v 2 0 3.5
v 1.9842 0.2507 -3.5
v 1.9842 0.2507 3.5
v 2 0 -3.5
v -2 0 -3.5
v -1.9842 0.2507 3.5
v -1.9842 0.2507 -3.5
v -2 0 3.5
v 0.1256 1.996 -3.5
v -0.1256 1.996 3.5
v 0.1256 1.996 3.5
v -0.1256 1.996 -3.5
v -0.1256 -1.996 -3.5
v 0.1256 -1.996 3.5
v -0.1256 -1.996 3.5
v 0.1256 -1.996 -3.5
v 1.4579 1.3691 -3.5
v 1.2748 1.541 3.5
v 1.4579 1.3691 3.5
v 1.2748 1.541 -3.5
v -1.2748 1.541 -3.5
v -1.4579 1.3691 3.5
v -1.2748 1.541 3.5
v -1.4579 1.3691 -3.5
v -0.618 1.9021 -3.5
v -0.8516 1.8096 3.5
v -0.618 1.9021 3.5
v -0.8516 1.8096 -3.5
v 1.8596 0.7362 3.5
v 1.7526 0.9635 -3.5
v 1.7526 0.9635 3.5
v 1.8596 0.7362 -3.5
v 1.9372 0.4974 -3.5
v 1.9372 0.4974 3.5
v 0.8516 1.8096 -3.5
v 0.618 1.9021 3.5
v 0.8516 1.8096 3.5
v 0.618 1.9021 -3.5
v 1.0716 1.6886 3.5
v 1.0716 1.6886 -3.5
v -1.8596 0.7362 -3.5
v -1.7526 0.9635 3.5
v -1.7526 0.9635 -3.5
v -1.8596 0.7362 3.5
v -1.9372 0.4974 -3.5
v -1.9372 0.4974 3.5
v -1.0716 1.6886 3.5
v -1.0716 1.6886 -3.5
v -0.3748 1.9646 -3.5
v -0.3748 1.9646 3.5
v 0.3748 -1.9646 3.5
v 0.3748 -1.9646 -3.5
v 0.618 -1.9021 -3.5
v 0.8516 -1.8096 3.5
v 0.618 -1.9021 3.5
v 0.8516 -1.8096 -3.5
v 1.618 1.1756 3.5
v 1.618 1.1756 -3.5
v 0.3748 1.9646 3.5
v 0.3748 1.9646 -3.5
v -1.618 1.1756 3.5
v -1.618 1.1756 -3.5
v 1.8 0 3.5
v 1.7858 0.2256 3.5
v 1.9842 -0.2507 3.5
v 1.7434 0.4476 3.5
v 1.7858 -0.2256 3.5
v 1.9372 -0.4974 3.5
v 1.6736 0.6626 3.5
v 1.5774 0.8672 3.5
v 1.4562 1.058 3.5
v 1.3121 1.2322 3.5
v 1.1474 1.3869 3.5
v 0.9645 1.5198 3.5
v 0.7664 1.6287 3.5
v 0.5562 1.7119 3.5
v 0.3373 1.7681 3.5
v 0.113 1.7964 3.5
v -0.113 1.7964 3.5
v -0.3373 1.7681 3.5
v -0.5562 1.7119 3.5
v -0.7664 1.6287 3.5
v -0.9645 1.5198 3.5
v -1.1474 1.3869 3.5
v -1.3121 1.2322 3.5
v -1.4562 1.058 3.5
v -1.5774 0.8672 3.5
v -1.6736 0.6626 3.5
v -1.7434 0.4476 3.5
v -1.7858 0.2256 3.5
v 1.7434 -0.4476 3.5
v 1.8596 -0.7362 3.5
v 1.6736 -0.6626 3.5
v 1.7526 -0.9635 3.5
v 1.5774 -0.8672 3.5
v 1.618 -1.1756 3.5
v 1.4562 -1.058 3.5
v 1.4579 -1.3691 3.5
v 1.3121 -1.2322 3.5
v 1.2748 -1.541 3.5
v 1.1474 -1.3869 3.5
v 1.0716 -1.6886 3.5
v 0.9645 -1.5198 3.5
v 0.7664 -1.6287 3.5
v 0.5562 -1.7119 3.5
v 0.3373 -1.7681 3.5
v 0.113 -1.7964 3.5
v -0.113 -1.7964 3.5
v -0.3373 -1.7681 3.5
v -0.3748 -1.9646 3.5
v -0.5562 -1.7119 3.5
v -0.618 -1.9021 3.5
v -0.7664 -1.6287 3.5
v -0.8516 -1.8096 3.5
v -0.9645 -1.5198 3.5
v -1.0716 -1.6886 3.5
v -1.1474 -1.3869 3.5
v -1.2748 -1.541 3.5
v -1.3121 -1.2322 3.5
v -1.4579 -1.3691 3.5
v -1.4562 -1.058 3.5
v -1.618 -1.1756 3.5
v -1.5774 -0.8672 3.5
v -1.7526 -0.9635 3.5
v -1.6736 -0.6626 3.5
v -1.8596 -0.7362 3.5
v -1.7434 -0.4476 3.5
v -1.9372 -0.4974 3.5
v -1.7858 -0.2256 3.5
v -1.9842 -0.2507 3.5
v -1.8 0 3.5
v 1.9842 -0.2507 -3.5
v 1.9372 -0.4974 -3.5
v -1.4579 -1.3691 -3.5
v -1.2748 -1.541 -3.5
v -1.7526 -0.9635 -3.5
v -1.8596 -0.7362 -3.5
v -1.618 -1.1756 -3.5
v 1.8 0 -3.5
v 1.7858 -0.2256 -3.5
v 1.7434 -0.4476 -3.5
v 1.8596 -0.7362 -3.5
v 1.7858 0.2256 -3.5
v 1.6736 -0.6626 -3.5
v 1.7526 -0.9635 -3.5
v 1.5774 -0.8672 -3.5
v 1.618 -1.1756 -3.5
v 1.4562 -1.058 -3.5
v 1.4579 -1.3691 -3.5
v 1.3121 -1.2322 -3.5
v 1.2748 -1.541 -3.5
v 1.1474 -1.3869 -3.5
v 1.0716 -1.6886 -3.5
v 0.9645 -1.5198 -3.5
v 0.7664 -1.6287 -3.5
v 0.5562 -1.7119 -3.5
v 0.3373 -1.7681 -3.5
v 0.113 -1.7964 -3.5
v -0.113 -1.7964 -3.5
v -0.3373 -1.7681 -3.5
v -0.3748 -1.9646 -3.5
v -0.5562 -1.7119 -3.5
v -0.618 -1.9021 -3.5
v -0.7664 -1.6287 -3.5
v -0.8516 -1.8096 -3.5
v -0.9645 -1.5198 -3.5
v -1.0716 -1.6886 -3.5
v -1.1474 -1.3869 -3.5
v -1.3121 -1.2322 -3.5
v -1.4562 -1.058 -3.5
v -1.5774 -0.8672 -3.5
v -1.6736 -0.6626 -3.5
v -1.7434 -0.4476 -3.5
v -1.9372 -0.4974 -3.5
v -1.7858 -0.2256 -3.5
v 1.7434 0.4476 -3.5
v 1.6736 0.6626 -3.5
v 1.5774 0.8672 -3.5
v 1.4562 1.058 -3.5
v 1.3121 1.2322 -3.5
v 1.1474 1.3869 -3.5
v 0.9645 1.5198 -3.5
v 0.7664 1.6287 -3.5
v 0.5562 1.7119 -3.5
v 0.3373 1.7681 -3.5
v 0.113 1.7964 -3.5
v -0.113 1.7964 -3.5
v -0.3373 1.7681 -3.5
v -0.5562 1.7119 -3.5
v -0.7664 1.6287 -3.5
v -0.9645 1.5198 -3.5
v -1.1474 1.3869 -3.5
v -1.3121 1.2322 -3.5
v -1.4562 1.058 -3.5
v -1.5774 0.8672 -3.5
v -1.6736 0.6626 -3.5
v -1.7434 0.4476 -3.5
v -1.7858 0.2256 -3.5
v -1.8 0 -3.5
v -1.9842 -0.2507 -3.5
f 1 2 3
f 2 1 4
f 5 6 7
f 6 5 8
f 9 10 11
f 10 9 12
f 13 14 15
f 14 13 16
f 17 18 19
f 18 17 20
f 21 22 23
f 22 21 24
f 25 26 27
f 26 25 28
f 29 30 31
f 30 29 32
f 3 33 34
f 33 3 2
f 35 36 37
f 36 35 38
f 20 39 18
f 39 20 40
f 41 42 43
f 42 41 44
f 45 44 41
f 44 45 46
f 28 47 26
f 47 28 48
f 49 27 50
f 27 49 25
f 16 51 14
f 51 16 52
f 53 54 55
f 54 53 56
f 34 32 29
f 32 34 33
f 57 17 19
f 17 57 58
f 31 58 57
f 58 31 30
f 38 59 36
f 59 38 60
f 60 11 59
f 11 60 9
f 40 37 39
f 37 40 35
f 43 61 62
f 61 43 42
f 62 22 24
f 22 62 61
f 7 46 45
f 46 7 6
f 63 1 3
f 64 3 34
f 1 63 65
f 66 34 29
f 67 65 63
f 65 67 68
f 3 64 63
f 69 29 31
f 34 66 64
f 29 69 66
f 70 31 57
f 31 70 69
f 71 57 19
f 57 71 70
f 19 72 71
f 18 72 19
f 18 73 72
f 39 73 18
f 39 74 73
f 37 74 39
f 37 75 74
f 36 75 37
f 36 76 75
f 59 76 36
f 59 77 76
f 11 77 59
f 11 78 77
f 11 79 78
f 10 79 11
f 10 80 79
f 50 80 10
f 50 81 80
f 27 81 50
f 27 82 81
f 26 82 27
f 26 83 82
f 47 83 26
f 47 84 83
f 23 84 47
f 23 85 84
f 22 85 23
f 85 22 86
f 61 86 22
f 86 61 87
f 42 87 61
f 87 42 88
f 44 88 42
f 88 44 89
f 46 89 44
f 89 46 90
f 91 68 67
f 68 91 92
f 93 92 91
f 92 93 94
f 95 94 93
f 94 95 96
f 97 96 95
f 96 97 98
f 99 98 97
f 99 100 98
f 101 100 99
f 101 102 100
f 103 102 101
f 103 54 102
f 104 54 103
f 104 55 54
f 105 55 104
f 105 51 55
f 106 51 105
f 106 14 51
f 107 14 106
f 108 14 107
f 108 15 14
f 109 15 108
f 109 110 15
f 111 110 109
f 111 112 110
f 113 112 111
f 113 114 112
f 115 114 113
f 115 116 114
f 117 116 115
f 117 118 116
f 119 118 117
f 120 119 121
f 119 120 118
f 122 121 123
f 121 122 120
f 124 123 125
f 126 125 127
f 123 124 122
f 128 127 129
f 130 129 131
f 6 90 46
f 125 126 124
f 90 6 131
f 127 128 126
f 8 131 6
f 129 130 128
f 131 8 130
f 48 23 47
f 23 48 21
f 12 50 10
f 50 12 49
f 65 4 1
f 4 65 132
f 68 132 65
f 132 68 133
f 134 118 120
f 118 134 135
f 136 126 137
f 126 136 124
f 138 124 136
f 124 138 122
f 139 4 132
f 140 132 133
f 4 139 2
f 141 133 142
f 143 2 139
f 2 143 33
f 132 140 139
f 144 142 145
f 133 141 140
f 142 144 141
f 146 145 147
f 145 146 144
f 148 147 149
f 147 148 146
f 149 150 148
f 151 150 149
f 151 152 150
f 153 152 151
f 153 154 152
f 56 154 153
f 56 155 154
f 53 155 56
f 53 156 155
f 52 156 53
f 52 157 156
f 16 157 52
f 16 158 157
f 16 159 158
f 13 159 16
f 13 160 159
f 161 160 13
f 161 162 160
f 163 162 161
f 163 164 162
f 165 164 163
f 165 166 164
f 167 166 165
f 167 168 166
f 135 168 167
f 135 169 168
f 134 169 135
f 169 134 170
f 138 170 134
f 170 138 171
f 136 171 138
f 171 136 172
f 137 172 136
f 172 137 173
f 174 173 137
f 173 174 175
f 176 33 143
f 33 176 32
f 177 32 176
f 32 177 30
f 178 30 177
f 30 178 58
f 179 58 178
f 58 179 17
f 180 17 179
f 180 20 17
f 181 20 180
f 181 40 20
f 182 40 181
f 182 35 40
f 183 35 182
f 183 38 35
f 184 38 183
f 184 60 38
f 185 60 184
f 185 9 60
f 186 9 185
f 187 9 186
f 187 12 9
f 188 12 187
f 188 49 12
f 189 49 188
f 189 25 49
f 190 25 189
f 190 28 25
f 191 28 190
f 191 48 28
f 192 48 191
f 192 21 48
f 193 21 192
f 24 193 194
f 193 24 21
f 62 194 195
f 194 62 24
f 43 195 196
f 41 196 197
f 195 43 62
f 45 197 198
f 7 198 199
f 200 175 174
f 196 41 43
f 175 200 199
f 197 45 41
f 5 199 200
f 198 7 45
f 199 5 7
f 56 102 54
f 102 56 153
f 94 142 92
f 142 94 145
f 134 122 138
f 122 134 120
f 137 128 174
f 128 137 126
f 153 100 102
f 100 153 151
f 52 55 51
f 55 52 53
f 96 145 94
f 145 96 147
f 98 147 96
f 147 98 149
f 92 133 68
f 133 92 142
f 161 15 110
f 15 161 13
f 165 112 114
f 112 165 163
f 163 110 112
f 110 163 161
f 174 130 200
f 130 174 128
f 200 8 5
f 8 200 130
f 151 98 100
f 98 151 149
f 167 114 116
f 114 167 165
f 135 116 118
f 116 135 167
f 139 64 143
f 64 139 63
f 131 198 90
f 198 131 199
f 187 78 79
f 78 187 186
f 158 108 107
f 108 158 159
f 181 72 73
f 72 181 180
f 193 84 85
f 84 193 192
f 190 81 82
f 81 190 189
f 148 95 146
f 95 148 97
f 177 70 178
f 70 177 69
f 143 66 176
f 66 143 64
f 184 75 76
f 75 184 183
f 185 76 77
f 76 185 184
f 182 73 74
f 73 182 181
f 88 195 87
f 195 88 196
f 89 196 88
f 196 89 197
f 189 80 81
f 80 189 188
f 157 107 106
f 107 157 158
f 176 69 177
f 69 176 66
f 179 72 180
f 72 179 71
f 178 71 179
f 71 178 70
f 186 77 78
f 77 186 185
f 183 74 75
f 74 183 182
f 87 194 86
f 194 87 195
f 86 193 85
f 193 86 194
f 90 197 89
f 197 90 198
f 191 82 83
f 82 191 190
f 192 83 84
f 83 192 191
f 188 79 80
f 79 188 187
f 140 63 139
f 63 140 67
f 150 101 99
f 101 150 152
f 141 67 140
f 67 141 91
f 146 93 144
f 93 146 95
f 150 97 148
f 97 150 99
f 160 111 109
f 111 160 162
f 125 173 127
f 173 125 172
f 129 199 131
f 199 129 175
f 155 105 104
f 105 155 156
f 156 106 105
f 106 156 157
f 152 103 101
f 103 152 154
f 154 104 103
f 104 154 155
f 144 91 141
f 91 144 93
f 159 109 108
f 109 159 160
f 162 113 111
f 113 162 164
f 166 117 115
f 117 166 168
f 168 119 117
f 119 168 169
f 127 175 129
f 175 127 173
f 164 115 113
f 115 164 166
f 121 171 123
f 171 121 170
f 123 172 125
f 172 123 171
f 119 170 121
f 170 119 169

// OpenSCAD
$fn = 50;


difference() {
	union() {
		translate(v = [0, 0, -3.5000000000]) {
			cylinder(h = 7, r = 2.0000000000);
		}
	}
	union() {
		#translate(v = [0, 0, -100.0000000000]) {
			cylinder(h = 200, r = 1.8000000000);
		}
	}
}
